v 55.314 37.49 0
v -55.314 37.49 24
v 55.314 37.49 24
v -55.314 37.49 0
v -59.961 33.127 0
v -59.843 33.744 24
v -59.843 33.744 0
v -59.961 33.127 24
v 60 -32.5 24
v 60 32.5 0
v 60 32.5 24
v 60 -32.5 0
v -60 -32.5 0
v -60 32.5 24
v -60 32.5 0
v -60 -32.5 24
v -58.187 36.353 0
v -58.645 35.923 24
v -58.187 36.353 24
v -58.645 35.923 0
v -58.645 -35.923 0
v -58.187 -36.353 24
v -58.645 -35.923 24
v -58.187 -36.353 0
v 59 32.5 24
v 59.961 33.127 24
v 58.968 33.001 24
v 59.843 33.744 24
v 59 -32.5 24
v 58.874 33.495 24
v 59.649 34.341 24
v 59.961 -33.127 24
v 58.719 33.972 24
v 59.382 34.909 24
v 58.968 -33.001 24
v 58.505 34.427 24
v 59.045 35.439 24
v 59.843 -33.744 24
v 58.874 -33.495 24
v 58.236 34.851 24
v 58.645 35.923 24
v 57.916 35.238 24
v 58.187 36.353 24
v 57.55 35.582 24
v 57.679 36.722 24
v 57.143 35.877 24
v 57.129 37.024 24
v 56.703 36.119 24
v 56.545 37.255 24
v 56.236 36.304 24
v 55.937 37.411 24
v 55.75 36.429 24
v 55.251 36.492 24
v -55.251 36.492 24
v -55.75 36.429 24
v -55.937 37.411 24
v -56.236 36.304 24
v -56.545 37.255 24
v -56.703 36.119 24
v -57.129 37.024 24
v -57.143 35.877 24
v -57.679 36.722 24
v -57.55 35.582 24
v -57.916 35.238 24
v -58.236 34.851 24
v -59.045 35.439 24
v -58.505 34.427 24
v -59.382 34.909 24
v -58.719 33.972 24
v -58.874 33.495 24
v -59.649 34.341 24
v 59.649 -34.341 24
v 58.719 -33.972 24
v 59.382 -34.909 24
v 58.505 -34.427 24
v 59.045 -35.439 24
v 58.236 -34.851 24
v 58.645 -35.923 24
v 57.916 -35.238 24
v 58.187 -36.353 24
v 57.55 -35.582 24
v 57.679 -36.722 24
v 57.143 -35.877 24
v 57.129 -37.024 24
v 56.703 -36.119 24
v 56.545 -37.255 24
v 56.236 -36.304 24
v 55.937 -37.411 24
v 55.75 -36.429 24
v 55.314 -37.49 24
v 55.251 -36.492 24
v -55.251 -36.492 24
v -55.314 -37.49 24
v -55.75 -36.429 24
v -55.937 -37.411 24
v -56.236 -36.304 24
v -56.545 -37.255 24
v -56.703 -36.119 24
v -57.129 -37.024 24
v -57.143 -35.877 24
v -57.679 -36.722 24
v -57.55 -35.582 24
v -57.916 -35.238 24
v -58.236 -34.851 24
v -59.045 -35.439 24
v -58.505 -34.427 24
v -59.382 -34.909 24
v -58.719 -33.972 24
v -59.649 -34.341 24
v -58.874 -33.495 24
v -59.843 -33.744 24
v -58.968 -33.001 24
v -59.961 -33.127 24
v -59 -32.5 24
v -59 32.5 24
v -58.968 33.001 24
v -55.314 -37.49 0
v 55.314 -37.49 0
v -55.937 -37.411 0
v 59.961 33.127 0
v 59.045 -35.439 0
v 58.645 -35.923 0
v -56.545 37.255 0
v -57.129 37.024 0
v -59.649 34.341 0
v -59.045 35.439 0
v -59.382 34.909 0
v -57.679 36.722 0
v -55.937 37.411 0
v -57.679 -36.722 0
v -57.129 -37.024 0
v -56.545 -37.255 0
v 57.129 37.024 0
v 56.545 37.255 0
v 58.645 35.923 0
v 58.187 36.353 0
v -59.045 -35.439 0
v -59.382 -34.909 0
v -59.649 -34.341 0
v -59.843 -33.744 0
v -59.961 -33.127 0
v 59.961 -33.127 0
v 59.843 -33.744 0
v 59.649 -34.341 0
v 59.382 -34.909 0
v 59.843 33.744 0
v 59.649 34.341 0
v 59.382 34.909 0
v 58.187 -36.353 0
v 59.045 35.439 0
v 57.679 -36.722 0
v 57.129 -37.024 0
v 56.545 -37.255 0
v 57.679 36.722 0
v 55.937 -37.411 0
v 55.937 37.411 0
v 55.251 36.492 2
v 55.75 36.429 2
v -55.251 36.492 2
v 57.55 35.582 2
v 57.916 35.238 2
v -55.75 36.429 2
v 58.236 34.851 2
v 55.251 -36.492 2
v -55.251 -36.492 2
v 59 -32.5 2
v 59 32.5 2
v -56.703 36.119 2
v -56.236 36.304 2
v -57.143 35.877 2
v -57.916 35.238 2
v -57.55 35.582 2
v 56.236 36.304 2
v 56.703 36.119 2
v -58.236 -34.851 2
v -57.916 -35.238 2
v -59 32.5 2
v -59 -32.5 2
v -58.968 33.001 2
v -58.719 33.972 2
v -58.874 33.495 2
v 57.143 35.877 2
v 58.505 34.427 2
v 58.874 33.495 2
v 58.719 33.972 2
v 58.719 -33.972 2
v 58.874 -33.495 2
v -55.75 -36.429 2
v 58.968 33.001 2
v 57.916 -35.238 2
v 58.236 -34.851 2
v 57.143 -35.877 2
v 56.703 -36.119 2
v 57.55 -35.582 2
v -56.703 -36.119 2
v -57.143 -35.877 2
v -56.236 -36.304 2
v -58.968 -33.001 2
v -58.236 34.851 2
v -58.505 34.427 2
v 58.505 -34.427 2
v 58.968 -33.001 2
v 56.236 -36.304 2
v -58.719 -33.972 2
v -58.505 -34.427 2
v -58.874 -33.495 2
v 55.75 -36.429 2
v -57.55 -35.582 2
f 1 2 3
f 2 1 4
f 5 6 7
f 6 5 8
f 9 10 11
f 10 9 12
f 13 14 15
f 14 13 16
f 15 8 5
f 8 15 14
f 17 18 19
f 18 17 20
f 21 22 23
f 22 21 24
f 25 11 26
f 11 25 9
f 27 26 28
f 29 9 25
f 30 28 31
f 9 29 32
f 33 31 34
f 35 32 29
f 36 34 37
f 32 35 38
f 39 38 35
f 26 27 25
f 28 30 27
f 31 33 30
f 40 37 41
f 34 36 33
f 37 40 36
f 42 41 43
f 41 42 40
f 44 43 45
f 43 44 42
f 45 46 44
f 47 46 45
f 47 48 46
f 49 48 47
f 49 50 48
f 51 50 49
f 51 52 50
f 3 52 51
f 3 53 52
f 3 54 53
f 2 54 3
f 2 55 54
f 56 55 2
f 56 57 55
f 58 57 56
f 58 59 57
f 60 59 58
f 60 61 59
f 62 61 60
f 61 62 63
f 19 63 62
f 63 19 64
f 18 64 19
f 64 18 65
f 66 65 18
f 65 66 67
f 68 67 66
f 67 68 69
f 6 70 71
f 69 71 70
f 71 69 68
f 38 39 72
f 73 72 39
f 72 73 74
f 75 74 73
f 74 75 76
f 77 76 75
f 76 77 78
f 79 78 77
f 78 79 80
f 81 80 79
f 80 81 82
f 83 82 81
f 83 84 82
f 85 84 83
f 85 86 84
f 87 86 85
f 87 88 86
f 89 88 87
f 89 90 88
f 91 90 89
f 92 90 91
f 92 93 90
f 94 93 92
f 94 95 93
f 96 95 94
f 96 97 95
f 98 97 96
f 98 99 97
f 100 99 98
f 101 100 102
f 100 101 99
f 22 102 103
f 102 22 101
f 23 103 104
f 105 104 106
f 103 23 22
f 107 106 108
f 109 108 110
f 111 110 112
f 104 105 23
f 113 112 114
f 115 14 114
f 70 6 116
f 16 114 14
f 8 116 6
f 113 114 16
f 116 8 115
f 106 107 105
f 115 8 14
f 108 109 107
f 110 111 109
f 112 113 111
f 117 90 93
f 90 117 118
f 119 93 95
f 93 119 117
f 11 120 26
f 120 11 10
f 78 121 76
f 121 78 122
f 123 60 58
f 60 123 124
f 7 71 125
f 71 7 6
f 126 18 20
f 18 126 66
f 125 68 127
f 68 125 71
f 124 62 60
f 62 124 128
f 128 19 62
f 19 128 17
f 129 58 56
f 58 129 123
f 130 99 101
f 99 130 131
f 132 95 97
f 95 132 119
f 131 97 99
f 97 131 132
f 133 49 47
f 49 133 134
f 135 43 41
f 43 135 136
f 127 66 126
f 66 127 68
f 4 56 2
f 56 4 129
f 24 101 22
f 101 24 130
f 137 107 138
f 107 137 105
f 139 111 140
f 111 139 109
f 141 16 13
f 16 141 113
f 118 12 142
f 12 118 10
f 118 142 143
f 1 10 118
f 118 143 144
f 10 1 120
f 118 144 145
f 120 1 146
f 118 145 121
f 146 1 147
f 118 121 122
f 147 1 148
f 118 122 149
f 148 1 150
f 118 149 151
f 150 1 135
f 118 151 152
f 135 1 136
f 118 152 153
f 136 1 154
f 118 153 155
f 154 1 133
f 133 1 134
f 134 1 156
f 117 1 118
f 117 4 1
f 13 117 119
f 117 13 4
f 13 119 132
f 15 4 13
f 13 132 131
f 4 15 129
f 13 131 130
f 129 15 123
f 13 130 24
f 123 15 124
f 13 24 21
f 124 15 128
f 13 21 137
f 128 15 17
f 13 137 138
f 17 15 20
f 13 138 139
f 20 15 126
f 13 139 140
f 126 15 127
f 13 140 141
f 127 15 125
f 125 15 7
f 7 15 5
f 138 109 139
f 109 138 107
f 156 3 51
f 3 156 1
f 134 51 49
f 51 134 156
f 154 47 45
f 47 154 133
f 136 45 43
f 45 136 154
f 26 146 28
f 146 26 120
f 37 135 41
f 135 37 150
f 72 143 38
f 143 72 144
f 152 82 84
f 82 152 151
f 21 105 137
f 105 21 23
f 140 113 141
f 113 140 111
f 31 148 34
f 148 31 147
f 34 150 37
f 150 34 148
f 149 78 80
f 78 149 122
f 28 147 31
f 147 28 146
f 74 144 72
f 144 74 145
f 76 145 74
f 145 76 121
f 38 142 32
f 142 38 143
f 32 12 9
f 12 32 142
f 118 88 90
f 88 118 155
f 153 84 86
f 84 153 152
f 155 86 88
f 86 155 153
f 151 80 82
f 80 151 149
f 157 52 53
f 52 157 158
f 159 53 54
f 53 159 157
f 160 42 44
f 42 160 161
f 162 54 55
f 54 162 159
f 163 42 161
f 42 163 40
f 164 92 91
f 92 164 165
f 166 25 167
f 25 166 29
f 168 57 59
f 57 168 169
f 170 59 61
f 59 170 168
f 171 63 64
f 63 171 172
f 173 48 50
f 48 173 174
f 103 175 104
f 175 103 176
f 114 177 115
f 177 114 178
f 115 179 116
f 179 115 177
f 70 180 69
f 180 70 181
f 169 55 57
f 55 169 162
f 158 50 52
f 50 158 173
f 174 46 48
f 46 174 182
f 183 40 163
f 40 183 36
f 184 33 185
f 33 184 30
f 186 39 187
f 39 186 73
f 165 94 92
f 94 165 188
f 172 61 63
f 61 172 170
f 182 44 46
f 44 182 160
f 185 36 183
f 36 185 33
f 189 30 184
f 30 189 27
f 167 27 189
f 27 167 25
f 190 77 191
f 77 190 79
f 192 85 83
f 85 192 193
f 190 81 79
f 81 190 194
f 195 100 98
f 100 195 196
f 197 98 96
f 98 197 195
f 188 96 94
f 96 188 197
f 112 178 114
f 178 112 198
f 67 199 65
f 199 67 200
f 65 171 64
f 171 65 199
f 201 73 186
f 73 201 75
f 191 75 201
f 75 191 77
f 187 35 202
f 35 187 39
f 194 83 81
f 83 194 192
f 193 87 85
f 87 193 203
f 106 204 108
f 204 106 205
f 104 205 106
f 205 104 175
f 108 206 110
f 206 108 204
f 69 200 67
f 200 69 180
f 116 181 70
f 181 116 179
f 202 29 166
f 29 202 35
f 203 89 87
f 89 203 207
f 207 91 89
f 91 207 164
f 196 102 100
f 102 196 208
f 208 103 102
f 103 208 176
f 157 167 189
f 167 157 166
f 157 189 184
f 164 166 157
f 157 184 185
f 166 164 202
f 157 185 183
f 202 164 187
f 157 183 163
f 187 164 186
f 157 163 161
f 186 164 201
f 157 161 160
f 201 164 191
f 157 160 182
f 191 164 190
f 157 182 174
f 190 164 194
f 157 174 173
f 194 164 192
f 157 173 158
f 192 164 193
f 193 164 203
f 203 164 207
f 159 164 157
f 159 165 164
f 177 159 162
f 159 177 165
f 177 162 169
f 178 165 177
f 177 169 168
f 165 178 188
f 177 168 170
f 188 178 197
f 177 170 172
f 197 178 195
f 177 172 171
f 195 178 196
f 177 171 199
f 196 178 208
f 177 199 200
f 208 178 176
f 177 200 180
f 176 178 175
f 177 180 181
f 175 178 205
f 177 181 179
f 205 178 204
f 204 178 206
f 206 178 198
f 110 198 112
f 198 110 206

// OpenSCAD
$fn = 50;


difference() {
	union() {
		hull() {
			translate(v = [-55.0000000000, 32.5000000000, 0]) {
				cylinder(h = 24, r = 5);
			}
			translate(v = [55.0000000000, 32.5000000000, 0]) {
				cylinder(h = 24, r = 5);
			}
			translate(v = [-55.0000000000, -32.5000000000, 0]) {
				cylinder(h = 24, r = 5);
			}
			translate(v = [55.0000000000, -32.5000000000, 0]) {
				cylinder(h = 24, r = 5);
			}
		}
	}
	union() {
		translate(v = [0, 0, 2]) {
			hull() {
				translate(v = [-55.0000000000, 32.5000000000, 0]) {
					cylinder(h = 22, r = 4);
				}
				translate(v = [55.0000000000, 32.5000000000, 0]) {
					cylinder(h = 22, r = 4);
				}
				translate(v = [-55.0000000000, -32.5000000000, 0]) {
					cylinder(h = 22, r = 4);
				}
				translate(v = [55.0000000000, -32.5000000000, 0]) {
					cylinder(h = 22, r = 4);
				}
			}
		}
	}
}
